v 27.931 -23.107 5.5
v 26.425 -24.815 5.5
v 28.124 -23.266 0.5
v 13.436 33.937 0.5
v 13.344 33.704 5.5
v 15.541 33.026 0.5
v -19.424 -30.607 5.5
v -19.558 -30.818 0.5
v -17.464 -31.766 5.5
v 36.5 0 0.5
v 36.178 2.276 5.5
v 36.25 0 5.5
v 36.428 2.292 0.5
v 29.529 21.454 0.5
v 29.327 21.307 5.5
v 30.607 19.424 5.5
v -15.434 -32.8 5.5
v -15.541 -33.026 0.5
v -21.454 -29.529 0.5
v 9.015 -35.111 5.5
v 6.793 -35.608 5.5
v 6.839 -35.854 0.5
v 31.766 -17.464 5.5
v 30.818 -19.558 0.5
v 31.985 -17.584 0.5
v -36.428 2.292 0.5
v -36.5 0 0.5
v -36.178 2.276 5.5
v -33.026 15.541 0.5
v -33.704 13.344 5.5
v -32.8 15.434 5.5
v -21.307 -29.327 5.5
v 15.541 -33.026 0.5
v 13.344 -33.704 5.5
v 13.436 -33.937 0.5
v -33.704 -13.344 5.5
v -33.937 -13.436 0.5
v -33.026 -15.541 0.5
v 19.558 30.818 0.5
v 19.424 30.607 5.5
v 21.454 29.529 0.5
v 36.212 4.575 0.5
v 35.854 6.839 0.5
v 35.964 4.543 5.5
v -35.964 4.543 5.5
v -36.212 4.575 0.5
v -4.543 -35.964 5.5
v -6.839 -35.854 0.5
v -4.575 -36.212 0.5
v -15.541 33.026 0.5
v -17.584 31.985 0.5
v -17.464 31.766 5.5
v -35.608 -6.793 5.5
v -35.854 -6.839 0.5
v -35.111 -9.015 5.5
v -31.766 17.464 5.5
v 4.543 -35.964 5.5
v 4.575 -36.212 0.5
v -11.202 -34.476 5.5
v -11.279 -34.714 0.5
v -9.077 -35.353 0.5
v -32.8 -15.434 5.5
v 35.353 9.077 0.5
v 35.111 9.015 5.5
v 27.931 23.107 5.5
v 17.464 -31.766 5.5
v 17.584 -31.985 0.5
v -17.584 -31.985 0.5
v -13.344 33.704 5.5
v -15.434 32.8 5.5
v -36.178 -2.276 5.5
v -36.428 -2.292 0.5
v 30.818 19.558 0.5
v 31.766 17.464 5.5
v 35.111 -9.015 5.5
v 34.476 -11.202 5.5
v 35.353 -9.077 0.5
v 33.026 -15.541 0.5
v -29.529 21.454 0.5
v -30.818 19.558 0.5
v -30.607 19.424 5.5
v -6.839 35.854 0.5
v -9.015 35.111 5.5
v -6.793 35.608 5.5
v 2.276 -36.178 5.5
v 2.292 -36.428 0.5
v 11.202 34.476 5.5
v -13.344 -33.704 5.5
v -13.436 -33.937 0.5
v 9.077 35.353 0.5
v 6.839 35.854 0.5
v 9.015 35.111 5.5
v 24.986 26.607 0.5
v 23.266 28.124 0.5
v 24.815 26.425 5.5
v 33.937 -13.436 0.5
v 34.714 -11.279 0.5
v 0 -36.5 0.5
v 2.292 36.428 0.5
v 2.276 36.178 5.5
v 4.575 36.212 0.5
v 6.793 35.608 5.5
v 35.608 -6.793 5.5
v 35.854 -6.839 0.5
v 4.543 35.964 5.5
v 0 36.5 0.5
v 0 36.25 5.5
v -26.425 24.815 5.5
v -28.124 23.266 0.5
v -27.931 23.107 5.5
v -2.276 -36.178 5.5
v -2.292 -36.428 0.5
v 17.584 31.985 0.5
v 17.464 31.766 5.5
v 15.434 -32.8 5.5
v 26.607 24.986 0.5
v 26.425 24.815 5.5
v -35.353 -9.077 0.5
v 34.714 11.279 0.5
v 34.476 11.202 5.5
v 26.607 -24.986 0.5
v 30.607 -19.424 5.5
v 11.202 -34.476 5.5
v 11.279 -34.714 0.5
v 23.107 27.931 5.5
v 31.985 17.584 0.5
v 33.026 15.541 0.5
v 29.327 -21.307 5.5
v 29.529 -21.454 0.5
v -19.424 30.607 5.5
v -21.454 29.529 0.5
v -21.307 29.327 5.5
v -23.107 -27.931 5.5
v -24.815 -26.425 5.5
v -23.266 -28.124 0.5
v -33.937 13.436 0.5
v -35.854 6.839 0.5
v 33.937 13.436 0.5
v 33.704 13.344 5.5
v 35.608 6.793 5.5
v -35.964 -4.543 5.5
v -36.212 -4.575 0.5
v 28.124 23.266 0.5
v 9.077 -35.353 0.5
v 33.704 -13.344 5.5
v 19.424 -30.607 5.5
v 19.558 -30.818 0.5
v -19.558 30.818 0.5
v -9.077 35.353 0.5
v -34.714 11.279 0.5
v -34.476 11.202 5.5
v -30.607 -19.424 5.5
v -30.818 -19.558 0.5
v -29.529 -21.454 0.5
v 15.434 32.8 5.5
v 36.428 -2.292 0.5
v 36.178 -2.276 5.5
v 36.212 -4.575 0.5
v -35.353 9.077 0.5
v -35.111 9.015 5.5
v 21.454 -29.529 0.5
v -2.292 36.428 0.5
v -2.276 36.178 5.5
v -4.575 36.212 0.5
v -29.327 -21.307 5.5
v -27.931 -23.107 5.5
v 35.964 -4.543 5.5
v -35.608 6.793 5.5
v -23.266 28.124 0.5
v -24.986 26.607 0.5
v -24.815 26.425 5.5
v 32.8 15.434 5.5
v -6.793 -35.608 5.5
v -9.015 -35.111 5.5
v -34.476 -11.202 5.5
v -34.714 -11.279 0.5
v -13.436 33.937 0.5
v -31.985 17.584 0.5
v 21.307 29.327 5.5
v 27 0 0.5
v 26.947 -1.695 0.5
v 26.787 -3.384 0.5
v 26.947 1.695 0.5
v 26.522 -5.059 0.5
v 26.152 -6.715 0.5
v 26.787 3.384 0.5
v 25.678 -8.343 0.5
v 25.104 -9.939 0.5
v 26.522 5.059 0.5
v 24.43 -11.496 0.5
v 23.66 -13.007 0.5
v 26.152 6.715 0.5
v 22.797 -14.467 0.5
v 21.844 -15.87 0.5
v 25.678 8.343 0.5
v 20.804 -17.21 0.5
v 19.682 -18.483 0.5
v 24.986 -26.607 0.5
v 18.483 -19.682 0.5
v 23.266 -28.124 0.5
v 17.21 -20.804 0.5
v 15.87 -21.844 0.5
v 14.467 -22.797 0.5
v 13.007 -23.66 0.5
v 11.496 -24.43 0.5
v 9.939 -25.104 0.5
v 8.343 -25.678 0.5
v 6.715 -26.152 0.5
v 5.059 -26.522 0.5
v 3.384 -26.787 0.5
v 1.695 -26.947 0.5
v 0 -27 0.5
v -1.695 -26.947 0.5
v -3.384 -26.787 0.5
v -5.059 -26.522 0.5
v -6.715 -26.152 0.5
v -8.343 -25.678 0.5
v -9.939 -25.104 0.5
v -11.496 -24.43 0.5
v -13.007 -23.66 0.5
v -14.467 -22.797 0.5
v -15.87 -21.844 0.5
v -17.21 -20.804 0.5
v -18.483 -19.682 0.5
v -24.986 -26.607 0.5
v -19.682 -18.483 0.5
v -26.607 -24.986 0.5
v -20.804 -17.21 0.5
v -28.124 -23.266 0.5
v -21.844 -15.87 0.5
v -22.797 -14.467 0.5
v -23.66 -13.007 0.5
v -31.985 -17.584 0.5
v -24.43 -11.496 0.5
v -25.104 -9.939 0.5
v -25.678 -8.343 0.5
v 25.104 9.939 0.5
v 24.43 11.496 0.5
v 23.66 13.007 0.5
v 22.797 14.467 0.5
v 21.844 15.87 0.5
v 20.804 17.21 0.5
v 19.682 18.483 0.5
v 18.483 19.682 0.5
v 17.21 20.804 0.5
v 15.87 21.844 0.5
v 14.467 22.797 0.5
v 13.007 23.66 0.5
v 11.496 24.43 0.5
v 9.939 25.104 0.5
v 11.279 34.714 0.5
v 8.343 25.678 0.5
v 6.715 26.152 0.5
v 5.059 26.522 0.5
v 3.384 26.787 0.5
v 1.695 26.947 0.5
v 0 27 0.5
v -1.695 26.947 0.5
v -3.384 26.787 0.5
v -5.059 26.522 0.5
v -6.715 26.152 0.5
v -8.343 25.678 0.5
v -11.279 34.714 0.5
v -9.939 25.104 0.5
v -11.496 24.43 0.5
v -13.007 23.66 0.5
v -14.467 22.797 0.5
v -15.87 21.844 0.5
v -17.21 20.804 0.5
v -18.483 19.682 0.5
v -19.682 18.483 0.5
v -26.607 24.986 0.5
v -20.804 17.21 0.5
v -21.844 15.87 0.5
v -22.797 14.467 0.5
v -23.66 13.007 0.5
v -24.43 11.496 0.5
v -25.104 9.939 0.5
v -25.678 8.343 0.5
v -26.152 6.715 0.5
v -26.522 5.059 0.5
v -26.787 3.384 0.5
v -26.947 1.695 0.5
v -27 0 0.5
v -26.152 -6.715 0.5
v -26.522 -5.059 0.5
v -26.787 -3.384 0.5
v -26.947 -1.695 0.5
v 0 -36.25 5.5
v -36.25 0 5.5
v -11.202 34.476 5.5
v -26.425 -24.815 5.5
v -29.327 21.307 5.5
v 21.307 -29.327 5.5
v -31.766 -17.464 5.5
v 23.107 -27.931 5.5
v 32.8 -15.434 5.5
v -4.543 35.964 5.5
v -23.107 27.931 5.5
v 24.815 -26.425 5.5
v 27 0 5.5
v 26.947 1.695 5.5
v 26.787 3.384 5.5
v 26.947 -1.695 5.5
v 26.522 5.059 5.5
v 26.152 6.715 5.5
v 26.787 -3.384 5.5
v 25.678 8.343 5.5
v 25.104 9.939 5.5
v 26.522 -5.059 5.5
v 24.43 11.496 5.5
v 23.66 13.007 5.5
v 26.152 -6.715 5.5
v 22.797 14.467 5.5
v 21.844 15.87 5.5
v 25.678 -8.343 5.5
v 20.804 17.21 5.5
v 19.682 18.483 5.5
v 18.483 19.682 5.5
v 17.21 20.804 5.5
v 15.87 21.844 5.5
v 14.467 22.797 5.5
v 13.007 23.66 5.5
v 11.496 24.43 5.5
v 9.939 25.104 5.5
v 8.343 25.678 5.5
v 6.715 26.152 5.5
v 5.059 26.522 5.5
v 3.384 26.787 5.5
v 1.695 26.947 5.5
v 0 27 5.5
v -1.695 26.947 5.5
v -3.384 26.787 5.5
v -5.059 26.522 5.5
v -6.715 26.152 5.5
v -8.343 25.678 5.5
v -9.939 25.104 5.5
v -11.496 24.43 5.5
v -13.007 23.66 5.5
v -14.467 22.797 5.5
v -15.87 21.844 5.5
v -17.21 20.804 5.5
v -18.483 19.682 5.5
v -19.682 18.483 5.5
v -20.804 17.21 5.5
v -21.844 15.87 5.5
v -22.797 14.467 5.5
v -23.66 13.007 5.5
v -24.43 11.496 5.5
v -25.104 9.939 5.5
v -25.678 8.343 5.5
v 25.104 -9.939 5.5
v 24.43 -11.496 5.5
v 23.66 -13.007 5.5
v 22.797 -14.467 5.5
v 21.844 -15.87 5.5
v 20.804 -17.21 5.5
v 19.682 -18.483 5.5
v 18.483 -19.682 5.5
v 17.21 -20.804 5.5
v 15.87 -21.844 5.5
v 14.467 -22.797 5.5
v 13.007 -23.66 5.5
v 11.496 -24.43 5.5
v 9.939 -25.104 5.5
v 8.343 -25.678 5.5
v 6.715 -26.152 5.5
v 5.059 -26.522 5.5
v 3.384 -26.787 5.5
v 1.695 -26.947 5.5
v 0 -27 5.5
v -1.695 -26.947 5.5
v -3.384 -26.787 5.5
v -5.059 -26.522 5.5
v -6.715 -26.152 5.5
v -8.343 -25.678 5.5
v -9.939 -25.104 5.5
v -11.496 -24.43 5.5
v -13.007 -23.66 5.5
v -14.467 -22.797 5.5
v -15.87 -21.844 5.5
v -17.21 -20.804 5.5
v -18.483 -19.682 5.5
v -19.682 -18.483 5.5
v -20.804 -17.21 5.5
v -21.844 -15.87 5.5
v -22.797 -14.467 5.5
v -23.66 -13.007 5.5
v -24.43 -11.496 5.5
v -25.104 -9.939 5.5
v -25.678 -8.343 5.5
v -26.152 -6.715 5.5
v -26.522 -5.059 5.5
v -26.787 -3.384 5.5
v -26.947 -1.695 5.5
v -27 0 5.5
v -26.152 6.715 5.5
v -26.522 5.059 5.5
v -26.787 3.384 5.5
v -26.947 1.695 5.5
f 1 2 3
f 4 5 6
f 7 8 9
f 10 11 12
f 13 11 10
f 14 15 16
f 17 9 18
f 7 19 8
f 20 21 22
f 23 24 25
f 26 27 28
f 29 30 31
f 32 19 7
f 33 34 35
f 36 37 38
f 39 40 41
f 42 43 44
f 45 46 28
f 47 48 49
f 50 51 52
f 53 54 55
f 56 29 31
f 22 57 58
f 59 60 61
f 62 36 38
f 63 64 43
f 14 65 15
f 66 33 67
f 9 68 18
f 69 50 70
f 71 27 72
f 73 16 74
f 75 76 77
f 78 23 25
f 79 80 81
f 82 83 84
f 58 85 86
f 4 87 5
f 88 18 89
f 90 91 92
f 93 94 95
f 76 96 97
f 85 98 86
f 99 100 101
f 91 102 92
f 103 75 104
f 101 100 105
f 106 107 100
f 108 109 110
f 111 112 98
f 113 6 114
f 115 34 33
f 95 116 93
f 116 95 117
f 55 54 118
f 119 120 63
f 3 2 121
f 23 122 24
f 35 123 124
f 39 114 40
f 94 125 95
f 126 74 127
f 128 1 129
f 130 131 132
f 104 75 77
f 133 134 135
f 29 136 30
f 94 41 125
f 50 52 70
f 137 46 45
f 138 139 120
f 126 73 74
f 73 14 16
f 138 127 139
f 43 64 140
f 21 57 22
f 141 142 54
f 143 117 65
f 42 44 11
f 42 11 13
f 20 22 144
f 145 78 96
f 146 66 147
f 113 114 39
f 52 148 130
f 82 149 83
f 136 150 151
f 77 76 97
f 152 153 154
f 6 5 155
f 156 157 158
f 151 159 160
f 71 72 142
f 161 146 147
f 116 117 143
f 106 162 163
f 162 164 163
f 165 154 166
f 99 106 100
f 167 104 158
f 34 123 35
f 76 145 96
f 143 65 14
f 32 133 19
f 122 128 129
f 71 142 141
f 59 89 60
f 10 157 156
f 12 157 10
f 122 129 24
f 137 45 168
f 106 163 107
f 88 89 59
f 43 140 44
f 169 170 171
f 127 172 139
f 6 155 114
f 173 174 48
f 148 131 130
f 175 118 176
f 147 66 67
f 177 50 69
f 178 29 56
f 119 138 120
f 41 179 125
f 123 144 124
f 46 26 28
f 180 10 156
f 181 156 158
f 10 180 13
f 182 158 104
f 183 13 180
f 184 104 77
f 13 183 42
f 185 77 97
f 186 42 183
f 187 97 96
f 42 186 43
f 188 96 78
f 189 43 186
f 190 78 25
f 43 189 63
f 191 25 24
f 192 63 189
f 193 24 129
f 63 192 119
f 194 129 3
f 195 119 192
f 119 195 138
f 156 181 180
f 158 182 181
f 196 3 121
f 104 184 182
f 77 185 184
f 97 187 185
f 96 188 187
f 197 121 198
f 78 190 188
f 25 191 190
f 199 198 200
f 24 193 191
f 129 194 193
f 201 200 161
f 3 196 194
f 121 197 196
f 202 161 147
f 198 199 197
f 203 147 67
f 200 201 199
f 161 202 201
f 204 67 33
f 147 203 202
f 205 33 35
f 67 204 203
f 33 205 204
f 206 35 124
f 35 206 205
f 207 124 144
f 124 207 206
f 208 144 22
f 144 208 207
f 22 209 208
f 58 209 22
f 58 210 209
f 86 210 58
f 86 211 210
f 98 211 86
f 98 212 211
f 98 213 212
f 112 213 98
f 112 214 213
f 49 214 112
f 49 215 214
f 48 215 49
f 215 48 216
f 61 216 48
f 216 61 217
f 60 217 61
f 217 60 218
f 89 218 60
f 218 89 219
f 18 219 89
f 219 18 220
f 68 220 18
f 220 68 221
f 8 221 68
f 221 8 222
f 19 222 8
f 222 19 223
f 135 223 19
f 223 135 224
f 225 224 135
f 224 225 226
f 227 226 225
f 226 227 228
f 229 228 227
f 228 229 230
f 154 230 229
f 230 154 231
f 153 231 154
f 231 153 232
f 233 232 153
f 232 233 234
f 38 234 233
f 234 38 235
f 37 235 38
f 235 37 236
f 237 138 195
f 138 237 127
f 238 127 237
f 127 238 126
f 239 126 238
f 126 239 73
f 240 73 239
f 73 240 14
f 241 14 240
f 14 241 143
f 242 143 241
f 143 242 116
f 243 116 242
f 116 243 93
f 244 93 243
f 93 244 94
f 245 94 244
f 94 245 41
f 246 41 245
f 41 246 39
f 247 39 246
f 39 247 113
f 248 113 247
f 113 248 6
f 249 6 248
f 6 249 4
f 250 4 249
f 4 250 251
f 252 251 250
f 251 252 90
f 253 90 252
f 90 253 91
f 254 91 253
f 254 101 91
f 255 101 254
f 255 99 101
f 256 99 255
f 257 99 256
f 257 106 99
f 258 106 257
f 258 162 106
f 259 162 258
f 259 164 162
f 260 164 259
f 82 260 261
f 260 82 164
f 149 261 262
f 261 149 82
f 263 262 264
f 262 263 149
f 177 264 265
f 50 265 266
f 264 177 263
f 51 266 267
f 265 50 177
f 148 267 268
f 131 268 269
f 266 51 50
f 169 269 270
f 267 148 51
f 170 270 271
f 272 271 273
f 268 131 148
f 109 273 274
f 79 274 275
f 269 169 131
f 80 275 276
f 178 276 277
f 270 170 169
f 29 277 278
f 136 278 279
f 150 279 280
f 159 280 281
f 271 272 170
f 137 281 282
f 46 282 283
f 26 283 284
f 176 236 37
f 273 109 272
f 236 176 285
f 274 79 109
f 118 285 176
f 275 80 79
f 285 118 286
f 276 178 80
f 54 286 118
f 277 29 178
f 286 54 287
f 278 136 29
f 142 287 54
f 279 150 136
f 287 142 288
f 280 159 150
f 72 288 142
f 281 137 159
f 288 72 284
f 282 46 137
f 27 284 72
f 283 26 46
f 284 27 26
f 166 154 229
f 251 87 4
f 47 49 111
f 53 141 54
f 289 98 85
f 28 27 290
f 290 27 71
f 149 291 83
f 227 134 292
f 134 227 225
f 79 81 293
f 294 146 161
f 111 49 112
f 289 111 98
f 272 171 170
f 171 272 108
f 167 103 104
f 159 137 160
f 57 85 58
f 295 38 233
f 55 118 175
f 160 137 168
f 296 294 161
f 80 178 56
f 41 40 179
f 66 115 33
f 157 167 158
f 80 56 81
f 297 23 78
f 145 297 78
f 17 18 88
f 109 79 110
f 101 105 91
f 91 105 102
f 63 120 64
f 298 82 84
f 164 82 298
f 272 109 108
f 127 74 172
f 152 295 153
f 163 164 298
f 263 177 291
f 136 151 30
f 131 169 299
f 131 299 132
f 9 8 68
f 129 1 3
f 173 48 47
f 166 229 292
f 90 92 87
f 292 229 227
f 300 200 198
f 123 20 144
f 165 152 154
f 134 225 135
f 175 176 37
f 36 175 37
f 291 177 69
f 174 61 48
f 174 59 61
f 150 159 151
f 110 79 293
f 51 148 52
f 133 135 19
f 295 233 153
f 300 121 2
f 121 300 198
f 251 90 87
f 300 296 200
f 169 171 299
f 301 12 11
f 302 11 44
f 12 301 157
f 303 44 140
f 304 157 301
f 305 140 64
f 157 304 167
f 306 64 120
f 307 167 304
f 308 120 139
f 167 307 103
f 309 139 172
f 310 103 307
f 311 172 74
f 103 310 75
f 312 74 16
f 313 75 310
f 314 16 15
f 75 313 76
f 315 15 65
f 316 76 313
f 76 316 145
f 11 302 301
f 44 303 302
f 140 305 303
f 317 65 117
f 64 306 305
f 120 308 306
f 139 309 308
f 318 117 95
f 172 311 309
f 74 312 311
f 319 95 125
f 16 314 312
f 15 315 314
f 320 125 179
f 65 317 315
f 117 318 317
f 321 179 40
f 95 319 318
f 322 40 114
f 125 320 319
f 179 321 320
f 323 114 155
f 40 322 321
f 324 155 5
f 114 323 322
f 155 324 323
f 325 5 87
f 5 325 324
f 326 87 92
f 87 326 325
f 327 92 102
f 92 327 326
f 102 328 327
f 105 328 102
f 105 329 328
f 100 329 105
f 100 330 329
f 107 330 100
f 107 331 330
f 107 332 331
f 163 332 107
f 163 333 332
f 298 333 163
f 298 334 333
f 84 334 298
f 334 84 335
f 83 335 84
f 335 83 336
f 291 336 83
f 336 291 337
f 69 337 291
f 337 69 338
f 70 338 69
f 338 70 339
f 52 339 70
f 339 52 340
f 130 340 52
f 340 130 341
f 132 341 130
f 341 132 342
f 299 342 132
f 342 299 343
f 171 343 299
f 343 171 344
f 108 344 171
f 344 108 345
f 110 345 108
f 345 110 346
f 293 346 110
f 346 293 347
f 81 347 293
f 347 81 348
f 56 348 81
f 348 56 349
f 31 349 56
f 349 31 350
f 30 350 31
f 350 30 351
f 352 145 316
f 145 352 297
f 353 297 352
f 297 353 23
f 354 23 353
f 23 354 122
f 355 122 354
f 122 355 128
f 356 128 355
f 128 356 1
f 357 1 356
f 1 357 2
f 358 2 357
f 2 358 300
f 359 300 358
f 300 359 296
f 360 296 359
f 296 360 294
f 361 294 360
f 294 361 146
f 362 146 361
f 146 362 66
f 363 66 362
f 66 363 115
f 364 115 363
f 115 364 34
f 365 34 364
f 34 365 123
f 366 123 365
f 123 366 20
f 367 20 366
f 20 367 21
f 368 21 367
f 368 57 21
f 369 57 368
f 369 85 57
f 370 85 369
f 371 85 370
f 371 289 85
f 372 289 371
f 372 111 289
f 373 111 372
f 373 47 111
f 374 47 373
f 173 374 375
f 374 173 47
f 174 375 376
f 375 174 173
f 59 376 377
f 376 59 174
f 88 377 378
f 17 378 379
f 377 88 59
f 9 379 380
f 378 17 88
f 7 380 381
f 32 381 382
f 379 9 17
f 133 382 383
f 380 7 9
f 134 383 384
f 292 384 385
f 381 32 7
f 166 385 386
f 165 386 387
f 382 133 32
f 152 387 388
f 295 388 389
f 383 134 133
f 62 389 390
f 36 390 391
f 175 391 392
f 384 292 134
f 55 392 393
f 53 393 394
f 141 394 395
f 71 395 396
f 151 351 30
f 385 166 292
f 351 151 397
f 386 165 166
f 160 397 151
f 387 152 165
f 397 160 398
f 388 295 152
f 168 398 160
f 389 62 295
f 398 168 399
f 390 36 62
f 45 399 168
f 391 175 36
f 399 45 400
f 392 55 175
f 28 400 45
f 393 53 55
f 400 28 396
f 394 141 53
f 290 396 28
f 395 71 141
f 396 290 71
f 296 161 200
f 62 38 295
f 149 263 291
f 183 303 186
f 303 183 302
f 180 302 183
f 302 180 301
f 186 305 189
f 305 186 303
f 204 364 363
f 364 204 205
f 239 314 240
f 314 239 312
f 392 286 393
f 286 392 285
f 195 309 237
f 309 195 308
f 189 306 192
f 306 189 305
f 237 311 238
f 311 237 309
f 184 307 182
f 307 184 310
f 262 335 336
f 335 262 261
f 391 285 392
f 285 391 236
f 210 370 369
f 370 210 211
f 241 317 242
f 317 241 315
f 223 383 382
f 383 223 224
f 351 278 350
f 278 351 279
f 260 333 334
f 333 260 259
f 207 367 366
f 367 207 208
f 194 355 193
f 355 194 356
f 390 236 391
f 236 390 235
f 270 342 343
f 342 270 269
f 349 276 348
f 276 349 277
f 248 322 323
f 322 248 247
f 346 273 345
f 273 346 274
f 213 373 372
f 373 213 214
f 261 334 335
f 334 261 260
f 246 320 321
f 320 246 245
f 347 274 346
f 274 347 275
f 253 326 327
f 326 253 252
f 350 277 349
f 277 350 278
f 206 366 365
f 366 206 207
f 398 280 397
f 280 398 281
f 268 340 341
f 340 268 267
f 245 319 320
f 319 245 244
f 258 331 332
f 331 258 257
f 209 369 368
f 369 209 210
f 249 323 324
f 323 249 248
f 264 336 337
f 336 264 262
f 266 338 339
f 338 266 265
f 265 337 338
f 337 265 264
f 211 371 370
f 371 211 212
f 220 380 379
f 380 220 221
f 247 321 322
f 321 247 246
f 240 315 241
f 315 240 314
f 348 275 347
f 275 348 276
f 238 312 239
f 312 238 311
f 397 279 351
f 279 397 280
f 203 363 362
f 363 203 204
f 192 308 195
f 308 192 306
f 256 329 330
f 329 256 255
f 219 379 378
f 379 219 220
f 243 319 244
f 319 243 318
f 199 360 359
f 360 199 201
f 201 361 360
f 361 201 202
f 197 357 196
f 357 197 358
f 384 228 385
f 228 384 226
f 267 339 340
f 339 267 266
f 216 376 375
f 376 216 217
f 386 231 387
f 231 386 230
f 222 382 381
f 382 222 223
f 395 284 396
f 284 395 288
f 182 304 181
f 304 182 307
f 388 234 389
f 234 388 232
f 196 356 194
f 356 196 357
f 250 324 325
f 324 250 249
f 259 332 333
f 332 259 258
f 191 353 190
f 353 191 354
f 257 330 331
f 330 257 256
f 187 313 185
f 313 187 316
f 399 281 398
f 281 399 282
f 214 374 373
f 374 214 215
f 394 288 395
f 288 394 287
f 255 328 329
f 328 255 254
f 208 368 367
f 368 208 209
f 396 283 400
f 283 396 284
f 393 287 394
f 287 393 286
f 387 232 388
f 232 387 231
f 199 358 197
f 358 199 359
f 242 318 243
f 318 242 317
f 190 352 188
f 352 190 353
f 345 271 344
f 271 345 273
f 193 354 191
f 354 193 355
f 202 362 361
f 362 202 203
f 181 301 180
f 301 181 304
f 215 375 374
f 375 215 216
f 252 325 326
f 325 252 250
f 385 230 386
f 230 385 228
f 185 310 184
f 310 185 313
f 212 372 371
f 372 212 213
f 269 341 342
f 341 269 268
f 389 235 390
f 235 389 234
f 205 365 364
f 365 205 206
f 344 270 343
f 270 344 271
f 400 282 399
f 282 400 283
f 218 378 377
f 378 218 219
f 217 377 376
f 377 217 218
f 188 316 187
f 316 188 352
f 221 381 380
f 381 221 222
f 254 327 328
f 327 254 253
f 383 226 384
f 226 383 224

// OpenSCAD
$fn=100;
height=5;
innerD=54 ;
upperOuterD=73;
lowerOuterD=72.5;
module flange () {
    difference(){
        translate([0,0,.5]) cylinder(d2=lowerOuterD,d1=upperOuterD,h=height);
        cylinder(d=innerD,h=height+1);
    
    }
}
flange();
